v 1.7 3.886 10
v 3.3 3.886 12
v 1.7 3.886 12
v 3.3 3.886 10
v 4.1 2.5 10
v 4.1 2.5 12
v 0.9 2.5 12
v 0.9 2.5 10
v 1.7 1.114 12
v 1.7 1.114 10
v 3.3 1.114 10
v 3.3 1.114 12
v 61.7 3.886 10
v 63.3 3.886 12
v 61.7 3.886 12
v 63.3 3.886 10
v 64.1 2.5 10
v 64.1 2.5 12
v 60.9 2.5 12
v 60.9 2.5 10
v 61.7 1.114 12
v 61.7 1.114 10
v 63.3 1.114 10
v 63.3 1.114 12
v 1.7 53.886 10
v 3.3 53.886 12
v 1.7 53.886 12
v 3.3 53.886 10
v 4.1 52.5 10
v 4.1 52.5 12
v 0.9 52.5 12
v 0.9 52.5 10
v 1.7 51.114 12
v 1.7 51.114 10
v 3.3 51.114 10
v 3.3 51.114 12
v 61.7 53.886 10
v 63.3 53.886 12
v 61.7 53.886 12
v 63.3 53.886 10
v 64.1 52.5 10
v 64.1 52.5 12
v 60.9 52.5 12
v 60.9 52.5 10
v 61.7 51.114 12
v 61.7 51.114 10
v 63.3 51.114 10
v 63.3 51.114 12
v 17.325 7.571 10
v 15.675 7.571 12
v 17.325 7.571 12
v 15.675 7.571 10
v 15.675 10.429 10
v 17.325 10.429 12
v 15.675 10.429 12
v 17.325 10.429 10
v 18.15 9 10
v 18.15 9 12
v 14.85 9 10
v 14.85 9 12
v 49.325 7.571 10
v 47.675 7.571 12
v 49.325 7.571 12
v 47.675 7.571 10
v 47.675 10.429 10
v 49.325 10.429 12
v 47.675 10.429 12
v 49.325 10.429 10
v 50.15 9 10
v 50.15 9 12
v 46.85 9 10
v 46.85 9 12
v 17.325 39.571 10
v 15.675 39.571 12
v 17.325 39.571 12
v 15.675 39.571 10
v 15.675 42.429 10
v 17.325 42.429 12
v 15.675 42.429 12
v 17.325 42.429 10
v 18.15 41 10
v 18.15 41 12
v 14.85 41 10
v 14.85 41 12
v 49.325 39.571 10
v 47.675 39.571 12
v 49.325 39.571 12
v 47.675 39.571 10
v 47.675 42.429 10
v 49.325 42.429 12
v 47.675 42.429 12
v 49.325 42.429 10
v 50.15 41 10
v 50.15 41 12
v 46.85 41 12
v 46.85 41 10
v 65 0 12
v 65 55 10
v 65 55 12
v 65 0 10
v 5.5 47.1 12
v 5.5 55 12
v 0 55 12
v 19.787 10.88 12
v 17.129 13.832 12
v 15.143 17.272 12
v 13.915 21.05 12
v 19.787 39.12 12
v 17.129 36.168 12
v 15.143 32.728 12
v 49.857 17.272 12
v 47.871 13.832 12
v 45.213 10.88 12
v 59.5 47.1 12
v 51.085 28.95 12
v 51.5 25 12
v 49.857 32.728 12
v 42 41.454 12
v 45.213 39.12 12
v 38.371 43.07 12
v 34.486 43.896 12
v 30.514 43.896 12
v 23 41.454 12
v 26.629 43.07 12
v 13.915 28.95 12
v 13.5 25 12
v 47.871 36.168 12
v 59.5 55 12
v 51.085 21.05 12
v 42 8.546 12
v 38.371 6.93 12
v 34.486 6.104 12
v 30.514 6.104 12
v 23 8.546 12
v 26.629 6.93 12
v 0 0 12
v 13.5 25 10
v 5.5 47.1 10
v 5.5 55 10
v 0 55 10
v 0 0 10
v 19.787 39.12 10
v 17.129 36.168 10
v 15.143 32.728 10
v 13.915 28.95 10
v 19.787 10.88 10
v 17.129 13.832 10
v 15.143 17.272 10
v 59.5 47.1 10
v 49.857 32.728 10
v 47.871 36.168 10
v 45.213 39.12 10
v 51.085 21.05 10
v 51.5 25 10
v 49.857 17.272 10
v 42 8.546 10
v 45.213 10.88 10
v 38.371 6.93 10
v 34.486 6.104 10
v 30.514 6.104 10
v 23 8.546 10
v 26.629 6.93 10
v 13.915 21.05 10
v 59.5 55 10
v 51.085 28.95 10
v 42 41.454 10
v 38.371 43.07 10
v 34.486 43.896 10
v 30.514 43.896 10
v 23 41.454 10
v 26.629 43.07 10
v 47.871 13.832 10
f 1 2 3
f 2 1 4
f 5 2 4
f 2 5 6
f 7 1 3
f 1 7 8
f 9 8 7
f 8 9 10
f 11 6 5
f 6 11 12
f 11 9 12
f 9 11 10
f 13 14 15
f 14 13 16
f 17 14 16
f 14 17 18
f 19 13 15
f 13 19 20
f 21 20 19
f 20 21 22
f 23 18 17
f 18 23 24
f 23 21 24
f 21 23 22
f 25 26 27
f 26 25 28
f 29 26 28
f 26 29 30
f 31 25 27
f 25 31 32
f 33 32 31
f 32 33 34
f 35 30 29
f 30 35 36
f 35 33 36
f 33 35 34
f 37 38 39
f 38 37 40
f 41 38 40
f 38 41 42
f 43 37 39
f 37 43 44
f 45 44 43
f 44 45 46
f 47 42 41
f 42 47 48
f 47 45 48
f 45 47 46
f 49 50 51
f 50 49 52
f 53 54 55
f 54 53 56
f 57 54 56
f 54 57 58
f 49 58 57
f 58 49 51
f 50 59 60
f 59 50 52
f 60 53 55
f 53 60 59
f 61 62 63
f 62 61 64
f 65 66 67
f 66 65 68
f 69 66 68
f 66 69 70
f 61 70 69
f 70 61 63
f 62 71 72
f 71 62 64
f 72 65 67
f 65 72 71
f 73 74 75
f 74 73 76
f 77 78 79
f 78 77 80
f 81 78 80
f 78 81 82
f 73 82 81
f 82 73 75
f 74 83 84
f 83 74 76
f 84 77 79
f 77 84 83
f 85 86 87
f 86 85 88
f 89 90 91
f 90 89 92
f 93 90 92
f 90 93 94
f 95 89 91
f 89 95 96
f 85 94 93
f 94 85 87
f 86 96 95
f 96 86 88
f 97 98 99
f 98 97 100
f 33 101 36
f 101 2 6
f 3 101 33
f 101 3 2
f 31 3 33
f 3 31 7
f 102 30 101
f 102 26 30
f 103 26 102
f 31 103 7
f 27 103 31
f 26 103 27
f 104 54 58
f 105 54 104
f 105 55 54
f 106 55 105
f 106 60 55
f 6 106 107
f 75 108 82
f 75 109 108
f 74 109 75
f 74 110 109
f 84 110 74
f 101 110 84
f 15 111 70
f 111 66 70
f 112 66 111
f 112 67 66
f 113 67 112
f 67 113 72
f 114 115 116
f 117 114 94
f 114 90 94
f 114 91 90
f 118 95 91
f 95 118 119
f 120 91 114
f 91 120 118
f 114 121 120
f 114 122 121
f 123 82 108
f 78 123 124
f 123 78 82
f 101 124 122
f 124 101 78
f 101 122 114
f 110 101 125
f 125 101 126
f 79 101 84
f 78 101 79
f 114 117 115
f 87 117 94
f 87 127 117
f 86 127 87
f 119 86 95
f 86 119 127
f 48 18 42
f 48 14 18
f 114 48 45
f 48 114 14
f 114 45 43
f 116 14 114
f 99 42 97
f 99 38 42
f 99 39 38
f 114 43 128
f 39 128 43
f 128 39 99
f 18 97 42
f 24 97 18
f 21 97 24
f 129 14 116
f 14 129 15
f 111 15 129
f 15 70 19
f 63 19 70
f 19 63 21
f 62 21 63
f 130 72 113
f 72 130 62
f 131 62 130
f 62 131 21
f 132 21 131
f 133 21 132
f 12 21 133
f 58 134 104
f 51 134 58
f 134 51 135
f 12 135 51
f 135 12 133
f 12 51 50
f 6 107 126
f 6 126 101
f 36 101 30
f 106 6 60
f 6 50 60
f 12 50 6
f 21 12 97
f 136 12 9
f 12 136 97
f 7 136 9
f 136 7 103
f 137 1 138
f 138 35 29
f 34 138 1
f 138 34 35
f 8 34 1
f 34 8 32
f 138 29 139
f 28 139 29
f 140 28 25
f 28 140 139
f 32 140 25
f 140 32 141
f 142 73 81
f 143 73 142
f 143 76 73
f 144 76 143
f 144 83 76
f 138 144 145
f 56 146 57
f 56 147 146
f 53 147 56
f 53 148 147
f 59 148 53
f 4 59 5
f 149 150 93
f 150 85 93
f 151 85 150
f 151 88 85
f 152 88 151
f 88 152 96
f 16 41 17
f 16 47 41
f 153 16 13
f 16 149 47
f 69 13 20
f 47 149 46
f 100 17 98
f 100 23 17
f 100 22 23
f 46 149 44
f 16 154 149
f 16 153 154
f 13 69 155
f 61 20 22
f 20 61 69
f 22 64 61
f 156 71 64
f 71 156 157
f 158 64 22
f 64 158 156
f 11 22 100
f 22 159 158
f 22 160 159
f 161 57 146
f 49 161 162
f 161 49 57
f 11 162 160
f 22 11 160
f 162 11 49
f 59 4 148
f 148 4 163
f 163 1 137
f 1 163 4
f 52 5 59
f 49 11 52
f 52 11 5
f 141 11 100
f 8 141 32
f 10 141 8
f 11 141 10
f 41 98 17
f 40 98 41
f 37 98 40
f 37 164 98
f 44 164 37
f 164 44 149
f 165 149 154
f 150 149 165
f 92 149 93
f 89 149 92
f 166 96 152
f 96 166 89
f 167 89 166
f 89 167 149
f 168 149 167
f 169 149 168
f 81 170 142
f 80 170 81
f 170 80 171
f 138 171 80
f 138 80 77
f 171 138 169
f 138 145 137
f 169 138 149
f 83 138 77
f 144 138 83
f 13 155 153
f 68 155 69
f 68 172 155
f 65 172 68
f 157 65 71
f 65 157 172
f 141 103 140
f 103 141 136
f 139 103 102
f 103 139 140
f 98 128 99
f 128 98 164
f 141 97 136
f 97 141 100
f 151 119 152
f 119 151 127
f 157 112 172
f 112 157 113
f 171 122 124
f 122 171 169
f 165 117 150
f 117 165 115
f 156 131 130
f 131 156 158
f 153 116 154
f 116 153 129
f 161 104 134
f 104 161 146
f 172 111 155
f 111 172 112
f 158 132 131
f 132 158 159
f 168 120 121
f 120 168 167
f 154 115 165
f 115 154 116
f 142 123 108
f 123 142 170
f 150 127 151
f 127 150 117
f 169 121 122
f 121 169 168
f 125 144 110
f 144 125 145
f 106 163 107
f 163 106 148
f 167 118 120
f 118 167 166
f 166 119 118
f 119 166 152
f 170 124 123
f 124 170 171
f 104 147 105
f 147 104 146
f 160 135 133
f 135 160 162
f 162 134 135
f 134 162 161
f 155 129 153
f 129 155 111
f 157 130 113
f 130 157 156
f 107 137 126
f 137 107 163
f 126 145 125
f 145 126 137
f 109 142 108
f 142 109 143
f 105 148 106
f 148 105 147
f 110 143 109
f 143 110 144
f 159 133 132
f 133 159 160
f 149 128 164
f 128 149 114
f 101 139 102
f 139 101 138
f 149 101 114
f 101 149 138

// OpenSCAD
// =====================
// Dimensioni HAT | IT/EN: HAT dimensions
// =====================
hat_length = 65;
hat_width  = 55;
hat_height = 10;

hat_hole_inset   = 2.5;
hat_hole_diameter = 3.2;

// =====================
// Ventola | IT/EN: Fan
// =====================
fan_size = 40;
fan_hole_spacing = 32;
fan_hole_diameter = 3.3;
fan_airflow_diameter = 38;

// =====================
// Struttura | IT/EN: Structure
// =====================
base_thickness = 2;
pillar_height  = hat_height - base_thickness;
top_thickness  = 2;

// =====================
// Rientranza GPIO | IT/EN: GPIO recess
// =====================
gpio_width  = 52;
gpio_depth  = 8;
gpio_margin = 3;

// =====================
// Offset | IT/EN: Scostamento
// =====================
offset_x = (hat_length - 65) / 2;
offset_y = (hat_width  - 55) / 2;

// =====================
// Fori HAT | IT/EN: HAT holes
// =====================
hat_hole_positions = [
    [hat_hole_inset + offset_x, hat_hole_inset + offset_y],
    [65 - hat_hole_inset + offset_x, hat_hole_inset + offset_y],
    [hat_hole_inset + offset_x, 55 - hat_hole_inset + offset_y],
    [65 - hat_hole_inset + offset_x, 55 - hat_hole_inset + offset_y]
];

// =====================
// Ventola | IT/EN: Fan
// =====================
fan_center_x = 65/2 + offset_x;
fan_center_y = 50/2 + offset_y;
fan_hole_offset = fan_hole_spacing / 2;

fan_hole_positions = [
    [fan_center_x - fan_hole_offset, fan_center_y - fan_hole_offset],
    [fan_center_x + fan_hole_offset, fan_center_y - fan_hole_offset],
    [fan_center_x - fan_hole_offset, fan_center_y + fan_hole_offset],
    [fan_center_x + fan_hole_offset, fan_center_y + fan_hole_offset]
];

// =====================
// Rientranza GPIO (Y) | IT/EN: GPIO recess, Y direction
// =====================
gpio_y_start = hat_hole_inset + offset_y + gpio_margin;
gpio_y_end   = 65 - hat_hole_inset + offset_y - gpio_margin;
gpio_y_size  = gpio_y_end - gpio_y_start;

// =====================
// Piastra superiore | IT/EN: Top plate
// =====================
module top_plate() {
    translate([0, 0, base_thickness + pillar_height]) {
        difference() {

            cube([hat_length, hat_width, top_thickness]);

            // Foro aria | IT/EN: Air opening
            translate([fan_center_x, fan_center_y, -0.1])
                cylinder(d = fan_airflow_diameter, h = top_thickness + 0.2);

            // Fori ventola | IT/EN: Fan holes
            for(pos = fan_hole_positions)
                translate([pos[0], pos[1], -0.1])
                    cylinder(d = fan_hole_diameter, h = top_thickness + 0.2);

            // Fori HAT | IT/EN: HAT holes
            for(pos = hat_hole_positions)
                translate([pos[0], pos[1], -0.1])
                    cylinder(d = hat_hole_diameter, h = top_thickness + 0.2);

            // RIENTRANZA GPIO – lato X = 65 | IT/EN: GPIO RECESS on the X=65 side
            translate([gpio_y_start, hat_width - gpio_depth + 0.1, -0.1])
    cube([gpio_y_size, gpio_depth + 0.2, top_thickness + 0.2]);
        }
    }
}

// =====================
// Assemblaggio | IT/EN: Assembly
// =====================
top_plate();
